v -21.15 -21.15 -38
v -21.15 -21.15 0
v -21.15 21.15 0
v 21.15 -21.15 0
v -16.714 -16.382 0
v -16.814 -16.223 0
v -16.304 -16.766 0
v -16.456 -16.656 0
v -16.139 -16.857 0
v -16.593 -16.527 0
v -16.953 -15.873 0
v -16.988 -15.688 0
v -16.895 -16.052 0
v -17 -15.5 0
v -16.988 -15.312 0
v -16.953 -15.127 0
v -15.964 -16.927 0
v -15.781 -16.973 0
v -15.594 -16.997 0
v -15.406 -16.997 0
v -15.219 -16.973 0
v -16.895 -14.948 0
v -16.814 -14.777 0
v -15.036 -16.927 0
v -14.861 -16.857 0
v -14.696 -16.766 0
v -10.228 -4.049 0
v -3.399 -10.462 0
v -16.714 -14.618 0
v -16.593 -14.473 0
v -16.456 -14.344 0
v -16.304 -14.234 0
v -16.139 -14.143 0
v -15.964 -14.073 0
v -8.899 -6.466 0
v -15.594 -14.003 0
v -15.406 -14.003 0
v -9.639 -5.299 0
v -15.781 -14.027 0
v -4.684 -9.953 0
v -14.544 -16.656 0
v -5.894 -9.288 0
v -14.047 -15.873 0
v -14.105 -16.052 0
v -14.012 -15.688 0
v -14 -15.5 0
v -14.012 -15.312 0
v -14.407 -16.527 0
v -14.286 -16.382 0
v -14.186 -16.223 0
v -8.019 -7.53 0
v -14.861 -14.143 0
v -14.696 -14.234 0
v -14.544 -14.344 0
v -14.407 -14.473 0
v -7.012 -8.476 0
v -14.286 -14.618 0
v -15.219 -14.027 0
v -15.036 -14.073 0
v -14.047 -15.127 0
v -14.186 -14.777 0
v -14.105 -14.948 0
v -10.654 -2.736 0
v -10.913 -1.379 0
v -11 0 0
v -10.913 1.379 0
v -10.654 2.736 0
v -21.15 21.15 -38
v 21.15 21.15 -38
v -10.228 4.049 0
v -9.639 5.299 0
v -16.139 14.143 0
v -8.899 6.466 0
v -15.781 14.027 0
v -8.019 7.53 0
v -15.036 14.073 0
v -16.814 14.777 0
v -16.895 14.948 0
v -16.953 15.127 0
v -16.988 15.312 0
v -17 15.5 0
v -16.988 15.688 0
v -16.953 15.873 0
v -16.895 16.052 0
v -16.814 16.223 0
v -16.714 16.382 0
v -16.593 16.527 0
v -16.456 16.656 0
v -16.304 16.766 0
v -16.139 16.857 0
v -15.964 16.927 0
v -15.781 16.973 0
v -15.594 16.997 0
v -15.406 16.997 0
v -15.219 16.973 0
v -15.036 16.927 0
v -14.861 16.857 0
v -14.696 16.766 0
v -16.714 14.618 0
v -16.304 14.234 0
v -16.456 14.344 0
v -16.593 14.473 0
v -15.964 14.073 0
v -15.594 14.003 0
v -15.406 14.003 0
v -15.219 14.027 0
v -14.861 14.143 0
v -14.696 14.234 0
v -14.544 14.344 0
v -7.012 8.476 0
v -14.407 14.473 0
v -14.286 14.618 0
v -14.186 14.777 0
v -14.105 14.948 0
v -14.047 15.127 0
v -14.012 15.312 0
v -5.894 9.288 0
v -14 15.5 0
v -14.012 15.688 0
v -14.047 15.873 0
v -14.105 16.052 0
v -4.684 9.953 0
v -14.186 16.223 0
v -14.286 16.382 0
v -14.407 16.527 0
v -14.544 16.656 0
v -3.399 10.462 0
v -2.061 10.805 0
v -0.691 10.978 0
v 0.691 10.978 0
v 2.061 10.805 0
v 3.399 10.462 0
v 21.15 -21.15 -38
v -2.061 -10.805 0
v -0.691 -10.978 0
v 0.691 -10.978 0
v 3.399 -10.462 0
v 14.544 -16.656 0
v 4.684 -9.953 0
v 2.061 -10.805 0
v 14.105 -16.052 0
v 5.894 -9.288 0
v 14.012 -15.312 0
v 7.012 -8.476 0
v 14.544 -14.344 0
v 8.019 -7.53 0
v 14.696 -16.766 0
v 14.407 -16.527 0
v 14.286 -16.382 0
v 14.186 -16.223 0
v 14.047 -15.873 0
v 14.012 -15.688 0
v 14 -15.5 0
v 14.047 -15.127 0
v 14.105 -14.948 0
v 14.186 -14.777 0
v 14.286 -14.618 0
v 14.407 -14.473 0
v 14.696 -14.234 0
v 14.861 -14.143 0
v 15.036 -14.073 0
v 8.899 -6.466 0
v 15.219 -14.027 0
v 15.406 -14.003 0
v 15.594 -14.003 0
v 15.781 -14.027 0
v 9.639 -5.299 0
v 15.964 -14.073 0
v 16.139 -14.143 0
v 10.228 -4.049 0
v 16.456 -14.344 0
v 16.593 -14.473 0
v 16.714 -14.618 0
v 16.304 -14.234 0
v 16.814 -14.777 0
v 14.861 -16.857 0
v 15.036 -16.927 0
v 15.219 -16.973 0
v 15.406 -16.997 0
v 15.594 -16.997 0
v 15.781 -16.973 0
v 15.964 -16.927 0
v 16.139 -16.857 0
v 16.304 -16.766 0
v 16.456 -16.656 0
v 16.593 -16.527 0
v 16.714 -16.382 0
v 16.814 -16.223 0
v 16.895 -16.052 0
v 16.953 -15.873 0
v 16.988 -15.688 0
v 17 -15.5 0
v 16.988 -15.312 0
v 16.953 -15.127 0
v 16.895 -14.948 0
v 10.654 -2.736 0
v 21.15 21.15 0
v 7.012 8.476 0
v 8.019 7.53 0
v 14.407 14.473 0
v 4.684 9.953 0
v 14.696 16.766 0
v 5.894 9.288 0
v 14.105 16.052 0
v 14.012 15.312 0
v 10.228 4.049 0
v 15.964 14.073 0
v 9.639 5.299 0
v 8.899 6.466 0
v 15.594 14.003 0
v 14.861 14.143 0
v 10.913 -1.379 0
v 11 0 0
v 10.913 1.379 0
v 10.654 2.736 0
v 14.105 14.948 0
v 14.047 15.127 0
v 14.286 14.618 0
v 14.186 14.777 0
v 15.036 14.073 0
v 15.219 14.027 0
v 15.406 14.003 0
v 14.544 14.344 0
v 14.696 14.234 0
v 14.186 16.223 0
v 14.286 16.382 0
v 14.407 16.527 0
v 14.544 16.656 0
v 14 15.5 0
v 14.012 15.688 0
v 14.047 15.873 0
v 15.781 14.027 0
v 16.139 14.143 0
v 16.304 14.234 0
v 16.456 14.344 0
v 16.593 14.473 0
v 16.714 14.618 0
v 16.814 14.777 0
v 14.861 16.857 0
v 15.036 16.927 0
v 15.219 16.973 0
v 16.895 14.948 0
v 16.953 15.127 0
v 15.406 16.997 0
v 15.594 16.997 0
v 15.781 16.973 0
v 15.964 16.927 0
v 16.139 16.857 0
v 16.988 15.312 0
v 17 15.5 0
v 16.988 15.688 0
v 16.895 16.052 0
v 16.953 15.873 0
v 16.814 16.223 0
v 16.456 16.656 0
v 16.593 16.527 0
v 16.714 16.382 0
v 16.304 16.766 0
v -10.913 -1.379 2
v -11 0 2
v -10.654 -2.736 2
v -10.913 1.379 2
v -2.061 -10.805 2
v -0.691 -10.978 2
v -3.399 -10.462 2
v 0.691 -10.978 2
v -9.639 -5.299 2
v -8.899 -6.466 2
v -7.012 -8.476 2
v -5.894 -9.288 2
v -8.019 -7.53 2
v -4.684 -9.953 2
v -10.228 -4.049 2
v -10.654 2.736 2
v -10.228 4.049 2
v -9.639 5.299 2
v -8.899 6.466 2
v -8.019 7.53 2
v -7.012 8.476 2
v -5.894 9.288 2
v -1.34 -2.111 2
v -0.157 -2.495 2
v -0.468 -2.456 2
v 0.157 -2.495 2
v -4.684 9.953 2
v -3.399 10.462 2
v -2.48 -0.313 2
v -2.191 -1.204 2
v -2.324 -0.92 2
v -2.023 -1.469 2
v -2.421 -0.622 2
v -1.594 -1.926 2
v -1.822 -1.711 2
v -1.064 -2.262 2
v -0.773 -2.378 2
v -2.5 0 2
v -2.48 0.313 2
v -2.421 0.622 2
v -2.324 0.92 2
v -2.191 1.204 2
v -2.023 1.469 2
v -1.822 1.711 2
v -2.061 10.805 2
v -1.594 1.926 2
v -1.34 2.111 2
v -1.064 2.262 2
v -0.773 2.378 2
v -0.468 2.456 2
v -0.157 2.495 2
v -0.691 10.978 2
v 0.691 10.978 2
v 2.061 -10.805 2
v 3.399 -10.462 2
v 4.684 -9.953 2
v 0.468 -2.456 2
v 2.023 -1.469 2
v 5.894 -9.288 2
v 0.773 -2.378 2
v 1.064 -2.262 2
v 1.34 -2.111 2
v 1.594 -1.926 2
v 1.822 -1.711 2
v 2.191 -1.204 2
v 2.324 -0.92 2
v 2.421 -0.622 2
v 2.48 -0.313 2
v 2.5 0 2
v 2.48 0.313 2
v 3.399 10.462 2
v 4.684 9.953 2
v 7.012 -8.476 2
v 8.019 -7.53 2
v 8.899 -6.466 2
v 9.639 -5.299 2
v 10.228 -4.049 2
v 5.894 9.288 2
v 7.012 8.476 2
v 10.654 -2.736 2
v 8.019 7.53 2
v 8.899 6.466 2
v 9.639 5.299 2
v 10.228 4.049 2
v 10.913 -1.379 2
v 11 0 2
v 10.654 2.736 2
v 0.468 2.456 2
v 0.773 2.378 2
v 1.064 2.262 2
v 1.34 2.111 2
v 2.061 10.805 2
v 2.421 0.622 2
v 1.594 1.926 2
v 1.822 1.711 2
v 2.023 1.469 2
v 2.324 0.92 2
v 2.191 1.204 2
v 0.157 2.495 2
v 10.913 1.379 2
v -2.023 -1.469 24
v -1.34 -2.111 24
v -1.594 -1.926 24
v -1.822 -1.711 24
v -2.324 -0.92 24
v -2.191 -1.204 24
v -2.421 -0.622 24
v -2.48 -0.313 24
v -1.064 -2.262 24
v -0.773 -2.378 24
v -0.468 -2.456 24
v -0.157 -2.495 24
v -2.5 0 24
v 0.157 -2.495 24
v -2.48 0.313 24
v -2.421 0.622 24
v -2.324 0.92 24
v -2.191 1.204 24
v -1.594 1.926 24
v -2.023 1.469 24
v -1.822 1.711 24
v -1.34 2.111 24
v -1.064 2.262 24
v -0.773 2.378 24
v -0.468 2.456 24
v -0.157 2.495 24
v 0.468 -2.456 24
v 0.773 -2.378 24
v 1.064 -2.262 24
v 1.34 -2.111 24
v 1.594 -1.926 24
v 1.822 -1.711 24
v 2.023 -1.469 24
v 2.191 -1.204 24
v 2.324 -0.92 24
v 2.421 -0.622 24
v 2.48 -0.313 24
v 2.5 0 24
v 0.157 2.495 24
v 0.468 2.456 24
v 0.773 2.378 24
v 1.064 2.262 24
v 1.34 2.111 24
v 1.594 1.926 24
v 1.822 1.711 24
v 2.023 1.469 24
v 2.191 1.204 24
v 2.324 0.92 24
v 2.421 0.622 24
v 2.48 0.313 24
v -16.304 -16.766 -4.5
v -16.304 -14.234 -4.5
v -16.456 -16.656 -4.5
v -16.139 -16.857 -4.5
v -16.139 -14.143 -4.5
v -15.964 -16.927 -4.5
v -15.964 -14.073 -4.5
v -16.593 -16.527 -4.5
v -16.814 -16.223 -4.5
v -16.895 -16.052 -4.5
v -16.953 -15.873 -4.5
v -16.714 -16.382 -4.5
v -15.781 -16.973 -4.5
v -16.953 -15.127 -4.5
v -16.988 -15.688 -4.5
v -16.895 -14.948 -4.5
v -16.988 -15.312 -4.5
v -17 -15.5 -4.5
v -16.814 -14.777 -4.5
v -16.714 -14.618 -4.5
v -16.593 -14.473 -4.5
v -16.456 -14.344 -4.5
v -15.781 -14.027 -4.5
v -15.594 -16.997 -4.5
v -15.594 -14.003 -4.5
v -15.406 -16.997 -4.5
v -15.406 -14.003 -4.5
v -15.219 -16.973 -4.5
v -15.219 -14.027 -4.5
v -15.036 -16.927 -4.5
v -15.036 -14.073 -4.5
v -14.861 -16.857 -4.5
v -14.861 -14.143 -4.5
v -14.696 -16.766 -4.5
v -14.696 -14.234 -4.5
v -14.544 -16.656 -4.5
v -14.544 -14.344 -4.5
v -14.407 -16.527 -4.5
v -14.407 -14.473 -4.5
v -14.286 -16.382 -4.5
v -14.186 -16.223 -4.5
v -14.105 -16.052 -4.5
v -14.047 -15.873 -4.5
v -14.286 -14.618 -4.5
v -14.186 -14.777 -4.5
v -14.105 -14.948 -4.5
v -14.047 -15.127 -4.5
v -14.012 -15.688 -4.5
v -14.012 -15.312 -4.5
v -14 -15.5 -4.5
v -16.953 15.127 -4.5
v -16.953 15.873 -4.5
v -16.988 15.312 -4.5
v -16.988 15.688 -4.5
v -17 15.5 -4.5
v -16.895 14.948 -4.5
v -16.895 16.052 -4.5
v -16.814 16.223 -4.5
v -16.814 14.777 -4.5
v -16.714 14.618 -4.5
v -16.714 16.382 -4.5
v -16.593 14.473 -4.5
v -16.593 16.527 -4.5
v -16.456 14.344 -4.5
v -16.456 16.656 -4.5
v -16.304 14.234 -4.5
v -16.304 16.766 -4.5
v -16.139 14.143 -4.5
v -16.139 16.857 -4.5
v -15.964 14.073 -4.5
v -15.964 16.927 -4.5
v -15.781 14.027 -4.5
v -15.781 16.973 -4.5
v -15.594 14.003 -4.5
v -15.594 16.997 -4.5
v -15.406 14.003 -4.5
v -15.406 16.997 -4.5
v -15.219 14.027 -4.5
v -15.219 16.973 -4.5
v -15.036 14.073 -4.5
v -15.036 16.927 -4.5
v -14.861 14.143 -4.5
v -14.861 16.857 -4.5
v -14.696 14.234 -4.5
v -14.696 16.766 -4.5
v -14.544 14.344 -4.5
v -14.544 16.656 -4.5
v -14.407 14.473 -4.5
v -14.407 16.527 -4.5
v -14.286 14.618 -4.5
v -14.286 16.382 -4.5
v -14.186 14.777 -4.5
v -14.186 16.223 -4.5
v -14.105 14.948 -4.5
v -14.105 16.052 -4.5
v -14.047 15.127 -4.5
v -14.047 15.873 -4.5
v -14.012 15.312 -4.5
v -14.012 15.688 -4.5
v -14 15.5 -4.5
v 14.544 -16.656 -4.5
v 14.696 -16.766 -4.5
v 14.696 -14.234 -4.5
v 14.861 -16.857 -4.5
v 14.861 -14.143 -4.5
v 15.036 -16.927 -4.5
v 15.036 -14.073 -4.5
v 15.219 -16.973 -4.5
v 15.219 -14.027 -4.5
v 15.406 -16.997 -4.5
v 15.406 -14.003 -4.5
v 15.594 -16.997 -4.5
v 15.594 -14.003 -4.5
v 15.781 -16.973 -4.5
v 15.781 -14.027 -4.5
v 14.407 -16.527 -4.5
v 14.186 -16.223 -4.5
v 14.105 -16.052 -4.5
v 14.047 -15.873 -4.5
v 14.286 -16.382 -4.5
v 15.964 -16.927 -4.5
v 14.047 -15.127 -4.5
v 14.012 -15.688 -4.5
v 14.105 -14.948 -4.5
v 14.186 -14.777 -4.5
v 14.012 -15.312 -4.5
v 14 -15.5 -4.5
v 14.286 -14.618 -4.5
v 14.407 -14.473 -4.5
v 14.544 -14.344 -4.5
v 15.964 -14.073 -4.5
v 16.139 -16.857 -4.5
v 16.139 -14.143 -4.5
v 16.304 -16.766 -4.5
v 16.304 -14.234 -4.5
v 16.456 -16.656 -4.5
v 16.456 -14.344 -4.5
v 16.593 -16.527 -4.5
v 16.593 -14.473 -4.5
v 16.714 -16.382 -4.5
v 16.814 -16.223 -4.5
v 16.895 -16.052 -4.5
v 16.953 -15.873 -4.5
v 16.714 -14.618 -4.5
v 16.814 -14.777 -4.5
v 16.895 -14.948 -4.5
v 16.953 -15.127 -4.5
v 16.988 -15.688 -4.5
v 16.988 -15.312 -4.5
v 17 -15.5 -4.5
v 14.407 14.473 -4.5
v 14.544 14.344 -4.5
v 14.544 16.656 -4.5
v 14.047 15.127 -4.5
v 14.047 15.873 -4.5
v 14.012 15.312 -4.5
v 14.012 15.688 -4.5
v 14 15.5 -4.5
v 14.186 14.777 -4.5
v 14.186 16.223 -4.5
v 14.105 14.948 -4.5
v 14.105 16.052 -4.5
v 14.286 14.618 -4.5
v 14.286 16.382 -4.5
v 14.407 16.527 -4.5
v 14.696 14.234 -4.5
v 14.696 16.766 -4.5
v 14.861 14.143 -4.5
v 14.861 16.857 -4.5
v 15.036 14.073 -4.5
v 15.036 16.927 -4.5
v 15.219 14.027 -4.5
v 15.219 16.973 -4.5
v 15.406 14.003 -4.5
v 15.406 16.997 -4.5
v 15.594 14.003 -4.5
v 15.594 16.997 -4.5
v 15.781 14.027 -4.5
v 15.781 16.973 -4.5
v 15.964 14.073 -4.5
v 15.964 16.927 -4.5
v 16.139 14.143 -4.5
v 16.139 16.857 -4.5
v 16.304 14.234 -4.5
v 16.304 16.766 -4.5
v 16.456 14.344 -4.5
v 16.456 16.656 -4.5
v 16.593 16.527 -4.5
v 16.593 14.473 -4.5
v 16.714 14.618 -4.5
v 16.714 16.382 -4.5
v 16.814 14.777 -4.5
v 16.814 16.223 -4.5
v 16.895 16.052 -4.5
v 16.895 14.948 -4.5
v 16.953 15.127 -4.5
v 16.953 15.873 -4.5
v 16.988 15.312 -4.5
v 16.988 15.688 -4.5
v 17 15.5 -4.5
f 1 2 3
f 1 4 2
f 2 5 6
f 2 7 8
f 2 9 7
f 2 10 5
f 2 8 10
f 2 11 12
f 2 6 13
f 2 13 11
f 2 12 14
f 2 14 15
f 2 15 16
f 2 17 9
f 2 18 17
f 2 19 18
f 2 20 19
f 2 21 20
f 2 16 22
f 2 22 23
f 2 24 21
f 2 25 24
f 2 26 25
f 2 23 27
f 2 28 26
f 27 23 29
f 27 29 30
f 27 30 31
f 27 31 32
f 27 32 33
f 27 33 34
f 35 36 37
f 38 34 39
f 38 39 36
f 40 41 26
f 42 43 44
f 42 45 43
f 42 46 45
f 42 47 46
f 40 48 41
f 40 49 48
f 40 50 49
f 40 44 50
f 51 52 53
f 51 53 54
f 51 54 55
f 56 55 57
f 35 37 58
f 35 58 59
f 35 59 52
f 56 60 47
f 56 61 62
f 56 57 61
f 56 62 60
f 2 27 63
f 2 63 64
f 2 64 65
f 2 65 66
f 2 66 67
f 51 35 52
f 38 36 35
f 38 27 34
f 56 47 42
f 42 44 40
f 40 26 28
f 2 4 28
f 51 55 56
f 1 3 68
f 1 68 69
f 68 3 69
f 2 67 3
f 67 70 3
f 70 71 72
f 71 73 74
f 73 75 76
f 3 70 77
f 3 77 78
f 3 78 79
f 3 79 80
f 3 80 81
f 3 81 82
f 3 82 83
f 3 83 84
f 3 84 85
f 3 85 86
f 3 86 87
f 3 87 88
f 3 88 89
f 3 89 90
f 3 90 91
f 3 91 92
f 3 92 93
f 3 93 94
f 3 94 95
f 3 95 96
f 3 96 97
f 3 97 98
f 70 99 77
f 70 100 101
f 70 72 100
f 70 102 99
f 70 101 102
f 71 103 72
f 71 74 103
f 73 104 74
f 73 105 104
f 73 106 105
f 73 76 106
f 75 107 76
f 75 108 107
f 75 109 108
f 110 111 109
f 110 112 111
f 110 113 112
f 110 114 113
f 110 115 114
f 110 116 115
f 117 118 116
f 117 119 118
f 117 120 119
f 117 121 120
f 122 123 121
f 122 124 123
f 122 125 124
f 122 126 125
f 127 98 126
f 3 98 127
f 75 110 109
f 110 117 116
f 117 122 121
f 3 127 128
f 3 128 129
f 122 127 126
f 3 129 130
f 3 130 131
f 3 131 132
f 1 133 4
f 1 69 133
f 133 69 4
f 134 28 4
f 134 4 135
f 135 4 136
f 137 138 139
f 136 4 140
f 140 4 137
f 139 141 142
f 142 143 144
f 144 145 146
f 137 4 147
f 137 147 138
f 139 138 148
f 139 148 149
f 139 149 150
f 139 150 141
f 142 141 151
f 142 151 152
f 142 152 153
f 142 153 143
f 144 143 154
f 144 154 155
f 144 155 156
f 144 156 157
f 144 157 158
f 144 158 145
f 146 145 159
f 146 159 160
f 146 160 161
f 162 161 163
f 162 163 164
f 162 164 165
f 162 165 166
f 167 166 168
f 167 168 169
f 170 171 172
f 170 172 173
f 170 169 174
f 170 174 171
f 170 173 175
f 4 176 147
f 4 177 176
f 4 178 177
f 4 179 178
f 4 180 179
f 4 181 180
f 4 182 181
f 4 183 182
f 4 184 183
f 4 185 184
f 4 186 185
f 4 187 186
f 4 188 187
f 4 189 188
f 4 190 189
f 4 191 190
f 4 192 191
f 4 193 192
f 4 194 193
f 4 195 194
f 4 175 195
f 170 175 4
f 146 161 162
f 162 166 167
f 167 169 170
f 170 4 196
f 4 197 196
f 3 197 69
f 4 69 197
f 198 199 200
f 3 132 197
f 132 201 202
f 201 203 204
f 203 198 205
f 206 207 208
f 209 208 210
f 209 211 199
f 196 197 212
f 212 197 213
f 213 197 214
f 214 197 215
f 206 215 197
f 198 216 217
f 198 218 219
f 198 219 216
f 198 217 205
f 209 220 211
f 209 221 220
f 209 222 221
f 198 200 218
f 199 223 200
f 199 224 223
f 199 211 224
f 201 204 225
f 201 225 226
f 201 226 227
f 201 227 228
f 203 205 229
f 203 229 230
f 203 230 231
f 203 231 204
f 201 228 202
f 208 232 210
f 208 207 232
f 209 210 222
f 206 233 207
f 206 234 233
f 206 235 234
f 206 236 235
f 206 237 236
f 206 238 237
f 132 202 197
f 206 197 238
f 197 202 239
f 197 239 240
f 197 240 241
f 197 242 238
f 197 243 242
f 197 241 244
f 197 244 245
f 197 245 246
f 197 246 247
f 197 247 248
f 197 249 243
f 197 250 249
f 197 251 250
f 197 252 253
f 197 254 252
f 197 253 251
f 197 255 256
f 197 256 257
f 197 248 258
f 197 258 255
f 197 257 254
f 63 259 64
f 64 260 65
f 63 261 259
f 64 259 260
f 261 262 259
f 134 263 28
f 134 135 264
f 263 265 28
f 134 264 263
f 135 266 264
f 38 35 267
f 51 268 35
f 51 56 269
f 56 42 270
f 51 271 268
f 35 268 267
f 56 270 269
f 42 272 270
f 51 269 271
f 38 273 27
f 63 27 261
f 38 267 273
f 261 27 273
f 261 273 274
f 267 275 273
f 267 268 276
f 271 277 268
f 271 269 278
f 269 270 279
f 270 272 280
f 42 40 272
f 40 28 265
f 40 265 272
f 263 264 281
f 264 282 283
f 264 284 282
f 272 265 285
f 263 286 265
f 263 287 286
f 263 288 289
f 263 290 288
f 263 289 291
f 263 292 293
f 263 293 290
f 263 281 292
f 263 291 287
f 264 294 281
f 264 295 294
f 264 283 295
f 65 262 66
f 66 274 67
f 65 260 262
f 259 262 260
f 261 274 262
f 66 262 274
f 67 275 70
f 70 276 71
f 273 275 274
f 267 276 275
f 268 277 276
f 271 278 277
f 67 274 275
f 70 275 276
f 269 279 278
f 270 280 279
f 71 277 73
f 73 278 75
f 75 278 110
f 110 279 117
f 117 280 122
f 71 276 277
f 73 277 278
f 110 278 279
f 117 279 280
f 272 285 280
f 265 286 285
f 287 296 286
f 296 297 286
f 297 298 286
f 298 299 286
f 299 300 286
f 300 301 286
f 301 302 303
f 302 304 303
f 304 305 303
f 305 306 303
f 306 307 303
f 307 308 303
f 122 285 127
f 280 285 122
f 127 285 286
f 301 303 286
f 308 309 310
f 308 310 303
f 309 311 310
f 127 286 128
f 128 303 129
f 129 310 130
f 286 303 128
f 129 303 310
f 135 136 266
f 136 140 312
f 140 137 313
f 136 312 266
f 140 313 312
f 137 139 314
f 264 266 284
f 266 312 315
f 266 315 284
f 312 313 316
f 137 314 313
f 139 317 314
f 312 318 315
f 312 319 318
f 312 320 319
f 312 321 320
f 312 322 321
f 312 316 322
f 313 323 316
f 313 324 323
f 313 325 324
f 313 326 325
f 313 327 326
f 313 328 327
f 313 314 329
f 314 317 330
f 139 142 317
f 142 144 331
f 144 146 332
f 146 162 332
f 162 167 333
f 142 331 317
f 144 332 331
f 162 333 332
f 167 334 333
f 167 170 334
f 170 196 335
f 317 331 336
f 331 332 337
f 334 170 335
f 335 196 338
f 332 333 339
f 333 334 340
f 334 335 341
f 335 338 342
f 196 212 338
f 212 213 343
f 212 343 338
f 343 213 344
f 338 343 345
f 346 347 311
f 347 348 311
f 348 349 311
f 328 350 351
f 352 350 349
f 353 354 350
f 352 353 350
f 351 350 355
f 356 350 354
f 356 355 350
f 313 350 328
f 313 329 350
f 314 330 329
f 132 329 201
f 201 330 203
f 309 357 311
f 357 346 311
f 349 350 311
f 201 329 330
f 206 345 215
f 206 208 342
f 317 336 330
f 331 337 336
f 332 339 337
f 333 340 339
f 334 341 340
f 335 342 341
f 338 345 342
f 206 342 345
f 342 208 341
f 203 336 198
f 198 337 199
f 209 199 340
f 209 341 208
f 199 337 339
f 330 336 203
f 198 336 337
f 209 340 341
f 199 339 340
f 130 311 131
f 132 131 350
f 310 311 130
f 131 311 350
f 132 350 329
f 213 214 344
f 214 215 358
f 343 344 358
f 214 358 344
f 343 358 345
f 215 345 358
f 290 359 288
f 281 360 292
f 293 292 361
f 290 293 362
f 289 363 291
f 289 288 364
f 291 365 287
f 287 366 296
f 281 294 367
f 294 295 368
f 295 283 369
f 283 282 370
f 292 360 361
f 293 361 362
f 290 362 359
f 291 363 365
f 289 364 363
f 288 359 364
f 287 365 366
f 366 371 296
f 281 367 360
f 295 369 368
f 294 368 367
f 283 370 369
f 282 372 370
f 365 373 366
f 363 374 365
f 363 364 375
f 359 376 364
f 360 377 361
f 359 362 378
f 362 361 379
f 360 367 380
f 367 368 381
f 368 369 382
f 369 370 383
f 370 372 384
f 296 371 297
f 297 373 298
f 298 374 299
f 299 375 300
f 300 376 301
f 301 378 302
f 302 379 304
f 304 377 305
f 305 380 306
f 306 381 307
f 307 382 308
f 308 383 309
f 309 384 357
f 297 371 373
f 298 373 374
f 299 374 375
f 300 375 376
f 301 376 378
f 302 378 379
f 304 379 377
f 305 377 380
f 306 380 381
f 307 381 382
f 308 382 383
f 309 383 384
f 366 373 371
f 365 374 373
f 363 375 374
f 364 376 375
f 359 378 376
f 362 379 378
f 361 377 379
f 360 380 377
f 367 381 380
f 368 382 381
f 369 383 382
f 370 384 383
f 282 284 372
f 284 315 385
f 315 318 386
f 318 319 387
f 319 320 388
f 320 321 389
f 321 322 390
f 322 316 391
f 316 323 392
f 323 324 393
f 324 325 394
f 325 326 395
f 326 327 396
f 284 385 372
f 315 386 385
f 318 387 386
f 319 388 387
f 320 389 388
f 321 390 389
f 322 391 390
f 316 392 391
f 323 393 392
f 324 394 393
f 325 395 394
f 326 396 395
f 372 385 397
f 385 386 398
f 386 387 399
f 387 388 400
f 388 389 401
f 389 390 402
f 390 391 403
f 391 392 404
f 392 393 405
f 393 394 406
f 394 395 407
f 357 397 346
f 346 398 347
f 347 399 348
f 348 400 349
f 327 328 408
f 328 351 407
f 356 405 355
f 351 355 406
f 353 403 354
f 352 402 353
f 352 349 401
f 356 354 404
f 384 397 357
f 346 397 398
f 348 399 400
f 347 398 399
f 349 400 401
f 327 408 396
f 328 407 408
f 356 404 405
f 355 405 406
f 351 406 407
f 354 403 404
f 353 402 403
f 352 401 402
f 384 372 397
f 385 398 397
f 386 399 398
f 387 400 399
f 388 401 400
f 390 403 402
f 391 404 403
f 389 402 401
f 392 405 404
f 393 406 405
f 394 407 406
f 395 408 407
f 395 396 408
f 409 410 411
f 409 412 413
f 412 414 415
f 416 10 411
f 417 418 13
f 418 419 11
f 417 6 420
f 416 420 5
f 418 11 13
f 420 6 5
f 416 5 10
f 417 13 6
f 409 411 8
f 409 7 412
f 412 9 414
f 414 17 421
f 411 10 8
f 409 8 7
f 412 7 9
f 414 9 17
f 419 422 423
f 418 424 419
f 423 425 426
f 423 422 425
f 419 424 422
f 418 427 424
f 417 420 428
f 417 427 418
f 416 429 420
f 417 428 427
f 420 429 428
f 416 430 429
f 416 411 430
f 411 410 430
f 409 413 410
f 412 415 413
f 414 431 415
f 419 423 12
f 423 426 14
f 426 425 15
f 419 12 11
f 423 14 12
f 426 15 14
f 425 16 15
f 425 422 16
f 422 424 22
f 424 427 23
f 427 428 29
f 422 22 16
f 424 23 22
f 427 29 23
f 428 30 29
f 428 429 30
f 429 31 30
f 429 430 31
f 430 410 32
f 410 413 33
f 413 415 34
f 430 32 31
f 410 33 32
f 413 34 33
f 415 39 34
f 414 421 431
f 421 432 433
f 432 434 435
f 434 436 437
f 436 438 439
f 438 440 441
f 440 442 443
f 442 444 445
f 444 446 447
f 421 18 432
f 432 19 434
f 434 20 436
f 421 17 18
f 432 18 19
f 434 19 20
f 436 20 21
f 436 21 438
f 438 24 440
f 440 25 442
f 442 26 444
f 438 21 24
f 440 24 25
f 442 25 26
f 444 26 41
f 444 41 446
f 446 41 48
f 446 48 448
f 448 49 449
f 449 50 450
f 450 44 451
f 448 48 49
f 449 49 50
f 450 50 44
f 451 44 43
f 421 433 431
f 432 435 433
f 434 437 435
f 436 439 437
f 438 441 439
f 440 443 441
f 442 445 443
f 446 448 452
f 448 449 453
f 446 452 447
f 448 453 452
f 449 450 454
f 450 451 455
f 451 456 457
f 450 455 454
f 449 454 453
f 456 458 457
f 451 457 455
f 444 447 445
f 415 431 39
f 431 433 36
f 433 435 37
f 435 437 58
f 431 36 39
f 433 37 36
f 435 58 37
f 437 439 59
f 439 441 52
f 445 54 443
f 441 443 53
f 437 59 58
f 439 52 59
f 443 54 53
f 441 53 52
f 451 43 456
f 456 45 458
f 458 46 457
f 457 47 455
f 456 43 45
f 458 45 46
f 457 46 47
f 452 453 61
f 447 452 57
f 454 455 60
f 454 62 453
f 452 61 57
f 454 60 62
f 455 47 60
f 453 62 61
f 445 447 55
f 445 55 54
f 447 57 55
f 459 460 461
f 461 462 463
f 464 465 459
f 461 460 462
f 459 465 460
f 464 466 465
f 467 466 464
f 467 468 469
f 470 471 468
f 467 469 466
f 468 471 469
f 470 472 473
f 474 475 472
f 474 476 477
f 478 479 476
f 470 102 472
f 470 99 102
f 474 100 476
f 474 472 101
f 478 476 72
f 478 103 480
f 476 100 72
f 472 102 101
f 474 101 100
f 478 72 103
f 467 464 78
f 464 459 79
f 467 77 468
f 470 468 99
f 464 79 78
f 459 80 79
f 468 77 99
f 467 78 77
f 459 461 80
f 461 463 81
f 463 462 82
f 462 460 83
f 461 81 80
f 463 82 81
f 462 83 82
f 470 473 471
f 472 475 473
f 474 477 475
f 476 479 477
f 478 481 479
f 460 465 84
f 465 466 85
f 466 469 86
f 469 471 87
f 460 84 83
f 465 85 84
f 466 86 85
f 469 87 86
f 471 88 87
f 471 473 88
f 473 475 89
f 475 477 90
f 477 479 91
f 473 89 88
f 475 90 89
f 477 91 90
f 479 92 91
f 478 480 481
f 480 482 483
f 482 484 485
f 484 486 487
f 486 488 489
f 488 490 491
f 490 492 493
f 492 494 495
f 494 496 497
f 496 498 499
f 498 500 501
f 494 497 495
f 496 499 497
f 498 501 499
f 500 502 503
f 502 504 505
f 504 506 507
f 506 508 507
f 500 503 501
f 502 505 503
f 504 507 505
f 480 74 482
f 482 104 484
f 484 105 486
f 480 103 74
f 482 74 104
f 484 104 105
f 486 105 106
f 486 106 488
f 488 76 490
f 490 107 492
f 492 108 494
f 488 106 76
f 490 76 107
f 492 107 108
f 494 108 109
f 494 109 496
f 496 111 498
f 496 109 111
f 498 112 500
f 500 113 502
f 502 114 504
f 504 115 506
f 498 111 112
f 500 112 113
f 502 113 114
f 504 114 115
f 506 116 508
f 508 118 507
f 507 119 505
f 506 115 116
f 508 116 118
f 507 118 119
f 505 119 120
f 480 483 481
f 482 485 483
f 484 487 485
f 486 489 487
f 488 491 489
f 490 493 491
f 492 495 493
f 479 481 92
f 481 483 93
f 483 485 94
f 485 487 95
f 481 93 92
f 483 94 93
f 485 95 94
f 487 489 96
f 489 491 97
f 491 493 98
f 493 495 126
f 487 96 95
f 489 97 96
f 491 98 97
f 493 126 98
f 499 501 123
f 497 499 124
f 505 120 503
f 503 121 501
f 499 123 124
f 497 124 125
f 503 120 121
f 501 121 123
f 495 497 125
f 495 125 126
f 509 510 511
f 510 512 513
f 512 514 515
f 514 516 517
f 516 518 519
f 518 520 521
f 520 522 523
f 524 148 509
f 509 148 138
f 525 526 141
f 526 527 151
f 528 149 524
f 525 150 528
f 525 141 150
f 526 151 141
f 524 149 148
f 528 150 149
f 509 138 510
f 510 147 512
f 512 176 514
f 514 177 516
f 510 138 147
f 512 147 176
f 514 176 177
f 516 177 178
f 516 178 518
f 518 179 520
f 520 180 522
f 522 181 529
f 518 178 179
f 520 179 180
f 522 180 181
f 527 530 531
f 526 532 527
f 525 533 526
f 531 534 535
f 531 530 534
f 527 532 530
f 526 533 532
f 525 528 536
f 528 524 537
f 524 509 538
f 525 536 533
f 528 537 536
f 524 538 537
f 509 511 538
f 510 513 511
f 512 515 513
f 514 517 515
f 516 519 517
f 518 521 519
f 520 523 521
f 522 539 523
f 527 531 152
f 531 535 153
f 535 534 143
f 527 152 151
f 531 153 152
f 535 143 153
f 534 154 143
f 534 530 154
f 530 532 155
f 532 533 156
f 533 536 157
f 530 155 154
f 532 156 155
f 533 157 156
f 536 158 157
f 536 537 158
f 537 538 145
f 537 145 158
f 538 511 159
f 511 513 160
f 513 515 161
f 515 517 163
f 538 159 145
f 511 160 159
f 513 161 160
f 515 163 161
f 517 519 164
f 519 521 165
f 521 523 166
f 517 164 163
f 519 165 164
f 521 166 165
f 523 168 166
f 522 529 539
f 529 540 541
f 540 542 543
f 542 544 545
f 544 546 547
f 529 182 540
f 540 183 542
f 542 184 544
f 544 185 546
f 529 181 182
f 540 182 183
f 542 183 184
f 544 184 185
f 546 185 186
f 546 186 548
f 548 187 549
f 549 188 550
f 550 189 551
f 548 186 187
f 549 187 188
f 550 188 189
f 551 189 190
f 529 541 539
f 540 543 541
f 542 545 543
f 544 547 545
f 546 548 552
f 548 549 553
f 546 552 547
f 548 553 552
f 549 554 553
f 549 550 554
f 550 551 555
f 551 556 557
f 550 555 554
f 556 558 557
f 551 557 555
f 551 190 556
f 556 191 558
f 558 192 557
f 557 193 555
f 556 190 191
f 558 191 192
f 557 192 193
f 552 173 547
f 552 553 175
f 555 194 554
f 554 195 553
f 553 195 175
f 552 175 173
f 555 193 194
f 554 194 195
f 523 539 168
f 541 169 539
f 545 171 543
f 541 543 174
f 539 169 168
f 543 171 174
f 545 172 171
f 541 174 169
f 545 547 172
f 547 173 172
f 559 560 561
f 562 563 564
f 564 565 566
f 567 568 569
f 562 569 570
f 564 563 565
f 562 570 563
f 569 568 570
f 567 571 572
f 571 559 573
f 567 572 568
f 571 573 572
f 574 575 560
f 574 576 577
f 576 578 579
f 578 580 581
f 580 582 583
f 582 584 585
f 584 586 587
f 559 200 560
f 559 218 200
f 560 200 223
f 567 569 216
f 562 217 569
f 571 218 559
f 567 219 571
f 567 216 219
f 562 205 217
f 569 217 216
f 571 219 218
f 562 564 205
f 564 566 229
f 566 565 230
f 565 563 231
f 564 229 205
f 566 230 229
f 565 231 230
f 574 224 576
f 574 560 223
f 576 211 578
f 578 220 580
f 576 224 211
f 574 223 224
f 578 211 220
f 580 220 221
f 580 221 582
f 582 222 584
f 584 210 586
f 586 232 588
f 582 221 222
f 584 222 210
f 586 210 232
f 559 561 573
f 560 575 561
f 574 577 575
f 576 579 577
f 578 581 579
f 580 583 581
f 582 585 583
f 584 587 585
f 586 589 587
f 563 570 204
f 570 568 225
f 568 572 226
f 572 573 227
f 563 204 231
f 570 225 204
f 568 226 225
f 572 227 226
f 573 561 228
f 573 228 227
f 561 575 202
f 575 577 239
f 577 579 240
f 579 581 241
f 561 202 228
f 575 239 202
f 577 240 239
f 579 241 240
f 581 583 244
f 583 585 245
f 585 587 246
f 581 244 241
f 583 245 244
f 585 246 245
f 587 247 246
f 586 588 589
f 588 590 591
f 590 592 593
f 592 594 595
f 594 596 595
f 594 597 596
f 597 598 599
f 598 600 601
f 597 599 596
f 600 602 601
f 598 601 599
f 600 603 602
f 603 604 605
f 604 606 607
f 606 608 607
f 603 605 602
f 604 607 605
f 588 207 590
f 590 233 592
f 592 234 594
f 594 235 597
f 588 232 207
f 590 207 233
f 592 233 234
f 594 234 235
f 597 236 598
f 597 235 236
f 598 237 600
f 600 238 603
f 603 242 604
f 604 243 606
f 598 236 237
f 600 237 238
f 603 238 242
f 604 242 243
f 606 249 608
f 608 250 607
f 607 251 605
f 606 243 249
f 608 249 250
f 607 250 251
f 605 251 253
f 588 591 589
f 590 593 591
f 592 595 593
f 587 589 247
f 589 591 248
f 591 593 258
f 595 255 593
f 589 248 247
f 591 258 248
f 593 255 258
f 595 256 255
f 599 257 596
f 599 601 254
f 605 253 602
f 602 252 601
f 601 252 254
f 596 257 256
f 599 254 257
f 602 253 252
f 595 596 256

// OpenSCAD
$fn = 50;

difference() {
	union() {
		translate(v = [-21.15, -21.15, -38]) {
			cube(size = [42.3, 42.3, 38]);
		}
		cylinder(h = 2, r = 11.0);
		cylinder(h = 24, r = 2.5);
	}
	union() {
		translate(v = [-15.5, -15.5, -4.5]) {
			cylinder(h = 5, r = 1.5);
		}
		translate(v = [-15.5, 15.5, -4.5]) {
			cylinder(h = 5, r = 1.5);
		}
		translate(v = [15.5, -15.5, -4.5]) {
			cylinder(h = 5, r = 1.5);
		}
		translate(v = [15.5, 15.5, -4.5]) {
			cylinder(h = 5, r = 1.5);
		}
	}
}
